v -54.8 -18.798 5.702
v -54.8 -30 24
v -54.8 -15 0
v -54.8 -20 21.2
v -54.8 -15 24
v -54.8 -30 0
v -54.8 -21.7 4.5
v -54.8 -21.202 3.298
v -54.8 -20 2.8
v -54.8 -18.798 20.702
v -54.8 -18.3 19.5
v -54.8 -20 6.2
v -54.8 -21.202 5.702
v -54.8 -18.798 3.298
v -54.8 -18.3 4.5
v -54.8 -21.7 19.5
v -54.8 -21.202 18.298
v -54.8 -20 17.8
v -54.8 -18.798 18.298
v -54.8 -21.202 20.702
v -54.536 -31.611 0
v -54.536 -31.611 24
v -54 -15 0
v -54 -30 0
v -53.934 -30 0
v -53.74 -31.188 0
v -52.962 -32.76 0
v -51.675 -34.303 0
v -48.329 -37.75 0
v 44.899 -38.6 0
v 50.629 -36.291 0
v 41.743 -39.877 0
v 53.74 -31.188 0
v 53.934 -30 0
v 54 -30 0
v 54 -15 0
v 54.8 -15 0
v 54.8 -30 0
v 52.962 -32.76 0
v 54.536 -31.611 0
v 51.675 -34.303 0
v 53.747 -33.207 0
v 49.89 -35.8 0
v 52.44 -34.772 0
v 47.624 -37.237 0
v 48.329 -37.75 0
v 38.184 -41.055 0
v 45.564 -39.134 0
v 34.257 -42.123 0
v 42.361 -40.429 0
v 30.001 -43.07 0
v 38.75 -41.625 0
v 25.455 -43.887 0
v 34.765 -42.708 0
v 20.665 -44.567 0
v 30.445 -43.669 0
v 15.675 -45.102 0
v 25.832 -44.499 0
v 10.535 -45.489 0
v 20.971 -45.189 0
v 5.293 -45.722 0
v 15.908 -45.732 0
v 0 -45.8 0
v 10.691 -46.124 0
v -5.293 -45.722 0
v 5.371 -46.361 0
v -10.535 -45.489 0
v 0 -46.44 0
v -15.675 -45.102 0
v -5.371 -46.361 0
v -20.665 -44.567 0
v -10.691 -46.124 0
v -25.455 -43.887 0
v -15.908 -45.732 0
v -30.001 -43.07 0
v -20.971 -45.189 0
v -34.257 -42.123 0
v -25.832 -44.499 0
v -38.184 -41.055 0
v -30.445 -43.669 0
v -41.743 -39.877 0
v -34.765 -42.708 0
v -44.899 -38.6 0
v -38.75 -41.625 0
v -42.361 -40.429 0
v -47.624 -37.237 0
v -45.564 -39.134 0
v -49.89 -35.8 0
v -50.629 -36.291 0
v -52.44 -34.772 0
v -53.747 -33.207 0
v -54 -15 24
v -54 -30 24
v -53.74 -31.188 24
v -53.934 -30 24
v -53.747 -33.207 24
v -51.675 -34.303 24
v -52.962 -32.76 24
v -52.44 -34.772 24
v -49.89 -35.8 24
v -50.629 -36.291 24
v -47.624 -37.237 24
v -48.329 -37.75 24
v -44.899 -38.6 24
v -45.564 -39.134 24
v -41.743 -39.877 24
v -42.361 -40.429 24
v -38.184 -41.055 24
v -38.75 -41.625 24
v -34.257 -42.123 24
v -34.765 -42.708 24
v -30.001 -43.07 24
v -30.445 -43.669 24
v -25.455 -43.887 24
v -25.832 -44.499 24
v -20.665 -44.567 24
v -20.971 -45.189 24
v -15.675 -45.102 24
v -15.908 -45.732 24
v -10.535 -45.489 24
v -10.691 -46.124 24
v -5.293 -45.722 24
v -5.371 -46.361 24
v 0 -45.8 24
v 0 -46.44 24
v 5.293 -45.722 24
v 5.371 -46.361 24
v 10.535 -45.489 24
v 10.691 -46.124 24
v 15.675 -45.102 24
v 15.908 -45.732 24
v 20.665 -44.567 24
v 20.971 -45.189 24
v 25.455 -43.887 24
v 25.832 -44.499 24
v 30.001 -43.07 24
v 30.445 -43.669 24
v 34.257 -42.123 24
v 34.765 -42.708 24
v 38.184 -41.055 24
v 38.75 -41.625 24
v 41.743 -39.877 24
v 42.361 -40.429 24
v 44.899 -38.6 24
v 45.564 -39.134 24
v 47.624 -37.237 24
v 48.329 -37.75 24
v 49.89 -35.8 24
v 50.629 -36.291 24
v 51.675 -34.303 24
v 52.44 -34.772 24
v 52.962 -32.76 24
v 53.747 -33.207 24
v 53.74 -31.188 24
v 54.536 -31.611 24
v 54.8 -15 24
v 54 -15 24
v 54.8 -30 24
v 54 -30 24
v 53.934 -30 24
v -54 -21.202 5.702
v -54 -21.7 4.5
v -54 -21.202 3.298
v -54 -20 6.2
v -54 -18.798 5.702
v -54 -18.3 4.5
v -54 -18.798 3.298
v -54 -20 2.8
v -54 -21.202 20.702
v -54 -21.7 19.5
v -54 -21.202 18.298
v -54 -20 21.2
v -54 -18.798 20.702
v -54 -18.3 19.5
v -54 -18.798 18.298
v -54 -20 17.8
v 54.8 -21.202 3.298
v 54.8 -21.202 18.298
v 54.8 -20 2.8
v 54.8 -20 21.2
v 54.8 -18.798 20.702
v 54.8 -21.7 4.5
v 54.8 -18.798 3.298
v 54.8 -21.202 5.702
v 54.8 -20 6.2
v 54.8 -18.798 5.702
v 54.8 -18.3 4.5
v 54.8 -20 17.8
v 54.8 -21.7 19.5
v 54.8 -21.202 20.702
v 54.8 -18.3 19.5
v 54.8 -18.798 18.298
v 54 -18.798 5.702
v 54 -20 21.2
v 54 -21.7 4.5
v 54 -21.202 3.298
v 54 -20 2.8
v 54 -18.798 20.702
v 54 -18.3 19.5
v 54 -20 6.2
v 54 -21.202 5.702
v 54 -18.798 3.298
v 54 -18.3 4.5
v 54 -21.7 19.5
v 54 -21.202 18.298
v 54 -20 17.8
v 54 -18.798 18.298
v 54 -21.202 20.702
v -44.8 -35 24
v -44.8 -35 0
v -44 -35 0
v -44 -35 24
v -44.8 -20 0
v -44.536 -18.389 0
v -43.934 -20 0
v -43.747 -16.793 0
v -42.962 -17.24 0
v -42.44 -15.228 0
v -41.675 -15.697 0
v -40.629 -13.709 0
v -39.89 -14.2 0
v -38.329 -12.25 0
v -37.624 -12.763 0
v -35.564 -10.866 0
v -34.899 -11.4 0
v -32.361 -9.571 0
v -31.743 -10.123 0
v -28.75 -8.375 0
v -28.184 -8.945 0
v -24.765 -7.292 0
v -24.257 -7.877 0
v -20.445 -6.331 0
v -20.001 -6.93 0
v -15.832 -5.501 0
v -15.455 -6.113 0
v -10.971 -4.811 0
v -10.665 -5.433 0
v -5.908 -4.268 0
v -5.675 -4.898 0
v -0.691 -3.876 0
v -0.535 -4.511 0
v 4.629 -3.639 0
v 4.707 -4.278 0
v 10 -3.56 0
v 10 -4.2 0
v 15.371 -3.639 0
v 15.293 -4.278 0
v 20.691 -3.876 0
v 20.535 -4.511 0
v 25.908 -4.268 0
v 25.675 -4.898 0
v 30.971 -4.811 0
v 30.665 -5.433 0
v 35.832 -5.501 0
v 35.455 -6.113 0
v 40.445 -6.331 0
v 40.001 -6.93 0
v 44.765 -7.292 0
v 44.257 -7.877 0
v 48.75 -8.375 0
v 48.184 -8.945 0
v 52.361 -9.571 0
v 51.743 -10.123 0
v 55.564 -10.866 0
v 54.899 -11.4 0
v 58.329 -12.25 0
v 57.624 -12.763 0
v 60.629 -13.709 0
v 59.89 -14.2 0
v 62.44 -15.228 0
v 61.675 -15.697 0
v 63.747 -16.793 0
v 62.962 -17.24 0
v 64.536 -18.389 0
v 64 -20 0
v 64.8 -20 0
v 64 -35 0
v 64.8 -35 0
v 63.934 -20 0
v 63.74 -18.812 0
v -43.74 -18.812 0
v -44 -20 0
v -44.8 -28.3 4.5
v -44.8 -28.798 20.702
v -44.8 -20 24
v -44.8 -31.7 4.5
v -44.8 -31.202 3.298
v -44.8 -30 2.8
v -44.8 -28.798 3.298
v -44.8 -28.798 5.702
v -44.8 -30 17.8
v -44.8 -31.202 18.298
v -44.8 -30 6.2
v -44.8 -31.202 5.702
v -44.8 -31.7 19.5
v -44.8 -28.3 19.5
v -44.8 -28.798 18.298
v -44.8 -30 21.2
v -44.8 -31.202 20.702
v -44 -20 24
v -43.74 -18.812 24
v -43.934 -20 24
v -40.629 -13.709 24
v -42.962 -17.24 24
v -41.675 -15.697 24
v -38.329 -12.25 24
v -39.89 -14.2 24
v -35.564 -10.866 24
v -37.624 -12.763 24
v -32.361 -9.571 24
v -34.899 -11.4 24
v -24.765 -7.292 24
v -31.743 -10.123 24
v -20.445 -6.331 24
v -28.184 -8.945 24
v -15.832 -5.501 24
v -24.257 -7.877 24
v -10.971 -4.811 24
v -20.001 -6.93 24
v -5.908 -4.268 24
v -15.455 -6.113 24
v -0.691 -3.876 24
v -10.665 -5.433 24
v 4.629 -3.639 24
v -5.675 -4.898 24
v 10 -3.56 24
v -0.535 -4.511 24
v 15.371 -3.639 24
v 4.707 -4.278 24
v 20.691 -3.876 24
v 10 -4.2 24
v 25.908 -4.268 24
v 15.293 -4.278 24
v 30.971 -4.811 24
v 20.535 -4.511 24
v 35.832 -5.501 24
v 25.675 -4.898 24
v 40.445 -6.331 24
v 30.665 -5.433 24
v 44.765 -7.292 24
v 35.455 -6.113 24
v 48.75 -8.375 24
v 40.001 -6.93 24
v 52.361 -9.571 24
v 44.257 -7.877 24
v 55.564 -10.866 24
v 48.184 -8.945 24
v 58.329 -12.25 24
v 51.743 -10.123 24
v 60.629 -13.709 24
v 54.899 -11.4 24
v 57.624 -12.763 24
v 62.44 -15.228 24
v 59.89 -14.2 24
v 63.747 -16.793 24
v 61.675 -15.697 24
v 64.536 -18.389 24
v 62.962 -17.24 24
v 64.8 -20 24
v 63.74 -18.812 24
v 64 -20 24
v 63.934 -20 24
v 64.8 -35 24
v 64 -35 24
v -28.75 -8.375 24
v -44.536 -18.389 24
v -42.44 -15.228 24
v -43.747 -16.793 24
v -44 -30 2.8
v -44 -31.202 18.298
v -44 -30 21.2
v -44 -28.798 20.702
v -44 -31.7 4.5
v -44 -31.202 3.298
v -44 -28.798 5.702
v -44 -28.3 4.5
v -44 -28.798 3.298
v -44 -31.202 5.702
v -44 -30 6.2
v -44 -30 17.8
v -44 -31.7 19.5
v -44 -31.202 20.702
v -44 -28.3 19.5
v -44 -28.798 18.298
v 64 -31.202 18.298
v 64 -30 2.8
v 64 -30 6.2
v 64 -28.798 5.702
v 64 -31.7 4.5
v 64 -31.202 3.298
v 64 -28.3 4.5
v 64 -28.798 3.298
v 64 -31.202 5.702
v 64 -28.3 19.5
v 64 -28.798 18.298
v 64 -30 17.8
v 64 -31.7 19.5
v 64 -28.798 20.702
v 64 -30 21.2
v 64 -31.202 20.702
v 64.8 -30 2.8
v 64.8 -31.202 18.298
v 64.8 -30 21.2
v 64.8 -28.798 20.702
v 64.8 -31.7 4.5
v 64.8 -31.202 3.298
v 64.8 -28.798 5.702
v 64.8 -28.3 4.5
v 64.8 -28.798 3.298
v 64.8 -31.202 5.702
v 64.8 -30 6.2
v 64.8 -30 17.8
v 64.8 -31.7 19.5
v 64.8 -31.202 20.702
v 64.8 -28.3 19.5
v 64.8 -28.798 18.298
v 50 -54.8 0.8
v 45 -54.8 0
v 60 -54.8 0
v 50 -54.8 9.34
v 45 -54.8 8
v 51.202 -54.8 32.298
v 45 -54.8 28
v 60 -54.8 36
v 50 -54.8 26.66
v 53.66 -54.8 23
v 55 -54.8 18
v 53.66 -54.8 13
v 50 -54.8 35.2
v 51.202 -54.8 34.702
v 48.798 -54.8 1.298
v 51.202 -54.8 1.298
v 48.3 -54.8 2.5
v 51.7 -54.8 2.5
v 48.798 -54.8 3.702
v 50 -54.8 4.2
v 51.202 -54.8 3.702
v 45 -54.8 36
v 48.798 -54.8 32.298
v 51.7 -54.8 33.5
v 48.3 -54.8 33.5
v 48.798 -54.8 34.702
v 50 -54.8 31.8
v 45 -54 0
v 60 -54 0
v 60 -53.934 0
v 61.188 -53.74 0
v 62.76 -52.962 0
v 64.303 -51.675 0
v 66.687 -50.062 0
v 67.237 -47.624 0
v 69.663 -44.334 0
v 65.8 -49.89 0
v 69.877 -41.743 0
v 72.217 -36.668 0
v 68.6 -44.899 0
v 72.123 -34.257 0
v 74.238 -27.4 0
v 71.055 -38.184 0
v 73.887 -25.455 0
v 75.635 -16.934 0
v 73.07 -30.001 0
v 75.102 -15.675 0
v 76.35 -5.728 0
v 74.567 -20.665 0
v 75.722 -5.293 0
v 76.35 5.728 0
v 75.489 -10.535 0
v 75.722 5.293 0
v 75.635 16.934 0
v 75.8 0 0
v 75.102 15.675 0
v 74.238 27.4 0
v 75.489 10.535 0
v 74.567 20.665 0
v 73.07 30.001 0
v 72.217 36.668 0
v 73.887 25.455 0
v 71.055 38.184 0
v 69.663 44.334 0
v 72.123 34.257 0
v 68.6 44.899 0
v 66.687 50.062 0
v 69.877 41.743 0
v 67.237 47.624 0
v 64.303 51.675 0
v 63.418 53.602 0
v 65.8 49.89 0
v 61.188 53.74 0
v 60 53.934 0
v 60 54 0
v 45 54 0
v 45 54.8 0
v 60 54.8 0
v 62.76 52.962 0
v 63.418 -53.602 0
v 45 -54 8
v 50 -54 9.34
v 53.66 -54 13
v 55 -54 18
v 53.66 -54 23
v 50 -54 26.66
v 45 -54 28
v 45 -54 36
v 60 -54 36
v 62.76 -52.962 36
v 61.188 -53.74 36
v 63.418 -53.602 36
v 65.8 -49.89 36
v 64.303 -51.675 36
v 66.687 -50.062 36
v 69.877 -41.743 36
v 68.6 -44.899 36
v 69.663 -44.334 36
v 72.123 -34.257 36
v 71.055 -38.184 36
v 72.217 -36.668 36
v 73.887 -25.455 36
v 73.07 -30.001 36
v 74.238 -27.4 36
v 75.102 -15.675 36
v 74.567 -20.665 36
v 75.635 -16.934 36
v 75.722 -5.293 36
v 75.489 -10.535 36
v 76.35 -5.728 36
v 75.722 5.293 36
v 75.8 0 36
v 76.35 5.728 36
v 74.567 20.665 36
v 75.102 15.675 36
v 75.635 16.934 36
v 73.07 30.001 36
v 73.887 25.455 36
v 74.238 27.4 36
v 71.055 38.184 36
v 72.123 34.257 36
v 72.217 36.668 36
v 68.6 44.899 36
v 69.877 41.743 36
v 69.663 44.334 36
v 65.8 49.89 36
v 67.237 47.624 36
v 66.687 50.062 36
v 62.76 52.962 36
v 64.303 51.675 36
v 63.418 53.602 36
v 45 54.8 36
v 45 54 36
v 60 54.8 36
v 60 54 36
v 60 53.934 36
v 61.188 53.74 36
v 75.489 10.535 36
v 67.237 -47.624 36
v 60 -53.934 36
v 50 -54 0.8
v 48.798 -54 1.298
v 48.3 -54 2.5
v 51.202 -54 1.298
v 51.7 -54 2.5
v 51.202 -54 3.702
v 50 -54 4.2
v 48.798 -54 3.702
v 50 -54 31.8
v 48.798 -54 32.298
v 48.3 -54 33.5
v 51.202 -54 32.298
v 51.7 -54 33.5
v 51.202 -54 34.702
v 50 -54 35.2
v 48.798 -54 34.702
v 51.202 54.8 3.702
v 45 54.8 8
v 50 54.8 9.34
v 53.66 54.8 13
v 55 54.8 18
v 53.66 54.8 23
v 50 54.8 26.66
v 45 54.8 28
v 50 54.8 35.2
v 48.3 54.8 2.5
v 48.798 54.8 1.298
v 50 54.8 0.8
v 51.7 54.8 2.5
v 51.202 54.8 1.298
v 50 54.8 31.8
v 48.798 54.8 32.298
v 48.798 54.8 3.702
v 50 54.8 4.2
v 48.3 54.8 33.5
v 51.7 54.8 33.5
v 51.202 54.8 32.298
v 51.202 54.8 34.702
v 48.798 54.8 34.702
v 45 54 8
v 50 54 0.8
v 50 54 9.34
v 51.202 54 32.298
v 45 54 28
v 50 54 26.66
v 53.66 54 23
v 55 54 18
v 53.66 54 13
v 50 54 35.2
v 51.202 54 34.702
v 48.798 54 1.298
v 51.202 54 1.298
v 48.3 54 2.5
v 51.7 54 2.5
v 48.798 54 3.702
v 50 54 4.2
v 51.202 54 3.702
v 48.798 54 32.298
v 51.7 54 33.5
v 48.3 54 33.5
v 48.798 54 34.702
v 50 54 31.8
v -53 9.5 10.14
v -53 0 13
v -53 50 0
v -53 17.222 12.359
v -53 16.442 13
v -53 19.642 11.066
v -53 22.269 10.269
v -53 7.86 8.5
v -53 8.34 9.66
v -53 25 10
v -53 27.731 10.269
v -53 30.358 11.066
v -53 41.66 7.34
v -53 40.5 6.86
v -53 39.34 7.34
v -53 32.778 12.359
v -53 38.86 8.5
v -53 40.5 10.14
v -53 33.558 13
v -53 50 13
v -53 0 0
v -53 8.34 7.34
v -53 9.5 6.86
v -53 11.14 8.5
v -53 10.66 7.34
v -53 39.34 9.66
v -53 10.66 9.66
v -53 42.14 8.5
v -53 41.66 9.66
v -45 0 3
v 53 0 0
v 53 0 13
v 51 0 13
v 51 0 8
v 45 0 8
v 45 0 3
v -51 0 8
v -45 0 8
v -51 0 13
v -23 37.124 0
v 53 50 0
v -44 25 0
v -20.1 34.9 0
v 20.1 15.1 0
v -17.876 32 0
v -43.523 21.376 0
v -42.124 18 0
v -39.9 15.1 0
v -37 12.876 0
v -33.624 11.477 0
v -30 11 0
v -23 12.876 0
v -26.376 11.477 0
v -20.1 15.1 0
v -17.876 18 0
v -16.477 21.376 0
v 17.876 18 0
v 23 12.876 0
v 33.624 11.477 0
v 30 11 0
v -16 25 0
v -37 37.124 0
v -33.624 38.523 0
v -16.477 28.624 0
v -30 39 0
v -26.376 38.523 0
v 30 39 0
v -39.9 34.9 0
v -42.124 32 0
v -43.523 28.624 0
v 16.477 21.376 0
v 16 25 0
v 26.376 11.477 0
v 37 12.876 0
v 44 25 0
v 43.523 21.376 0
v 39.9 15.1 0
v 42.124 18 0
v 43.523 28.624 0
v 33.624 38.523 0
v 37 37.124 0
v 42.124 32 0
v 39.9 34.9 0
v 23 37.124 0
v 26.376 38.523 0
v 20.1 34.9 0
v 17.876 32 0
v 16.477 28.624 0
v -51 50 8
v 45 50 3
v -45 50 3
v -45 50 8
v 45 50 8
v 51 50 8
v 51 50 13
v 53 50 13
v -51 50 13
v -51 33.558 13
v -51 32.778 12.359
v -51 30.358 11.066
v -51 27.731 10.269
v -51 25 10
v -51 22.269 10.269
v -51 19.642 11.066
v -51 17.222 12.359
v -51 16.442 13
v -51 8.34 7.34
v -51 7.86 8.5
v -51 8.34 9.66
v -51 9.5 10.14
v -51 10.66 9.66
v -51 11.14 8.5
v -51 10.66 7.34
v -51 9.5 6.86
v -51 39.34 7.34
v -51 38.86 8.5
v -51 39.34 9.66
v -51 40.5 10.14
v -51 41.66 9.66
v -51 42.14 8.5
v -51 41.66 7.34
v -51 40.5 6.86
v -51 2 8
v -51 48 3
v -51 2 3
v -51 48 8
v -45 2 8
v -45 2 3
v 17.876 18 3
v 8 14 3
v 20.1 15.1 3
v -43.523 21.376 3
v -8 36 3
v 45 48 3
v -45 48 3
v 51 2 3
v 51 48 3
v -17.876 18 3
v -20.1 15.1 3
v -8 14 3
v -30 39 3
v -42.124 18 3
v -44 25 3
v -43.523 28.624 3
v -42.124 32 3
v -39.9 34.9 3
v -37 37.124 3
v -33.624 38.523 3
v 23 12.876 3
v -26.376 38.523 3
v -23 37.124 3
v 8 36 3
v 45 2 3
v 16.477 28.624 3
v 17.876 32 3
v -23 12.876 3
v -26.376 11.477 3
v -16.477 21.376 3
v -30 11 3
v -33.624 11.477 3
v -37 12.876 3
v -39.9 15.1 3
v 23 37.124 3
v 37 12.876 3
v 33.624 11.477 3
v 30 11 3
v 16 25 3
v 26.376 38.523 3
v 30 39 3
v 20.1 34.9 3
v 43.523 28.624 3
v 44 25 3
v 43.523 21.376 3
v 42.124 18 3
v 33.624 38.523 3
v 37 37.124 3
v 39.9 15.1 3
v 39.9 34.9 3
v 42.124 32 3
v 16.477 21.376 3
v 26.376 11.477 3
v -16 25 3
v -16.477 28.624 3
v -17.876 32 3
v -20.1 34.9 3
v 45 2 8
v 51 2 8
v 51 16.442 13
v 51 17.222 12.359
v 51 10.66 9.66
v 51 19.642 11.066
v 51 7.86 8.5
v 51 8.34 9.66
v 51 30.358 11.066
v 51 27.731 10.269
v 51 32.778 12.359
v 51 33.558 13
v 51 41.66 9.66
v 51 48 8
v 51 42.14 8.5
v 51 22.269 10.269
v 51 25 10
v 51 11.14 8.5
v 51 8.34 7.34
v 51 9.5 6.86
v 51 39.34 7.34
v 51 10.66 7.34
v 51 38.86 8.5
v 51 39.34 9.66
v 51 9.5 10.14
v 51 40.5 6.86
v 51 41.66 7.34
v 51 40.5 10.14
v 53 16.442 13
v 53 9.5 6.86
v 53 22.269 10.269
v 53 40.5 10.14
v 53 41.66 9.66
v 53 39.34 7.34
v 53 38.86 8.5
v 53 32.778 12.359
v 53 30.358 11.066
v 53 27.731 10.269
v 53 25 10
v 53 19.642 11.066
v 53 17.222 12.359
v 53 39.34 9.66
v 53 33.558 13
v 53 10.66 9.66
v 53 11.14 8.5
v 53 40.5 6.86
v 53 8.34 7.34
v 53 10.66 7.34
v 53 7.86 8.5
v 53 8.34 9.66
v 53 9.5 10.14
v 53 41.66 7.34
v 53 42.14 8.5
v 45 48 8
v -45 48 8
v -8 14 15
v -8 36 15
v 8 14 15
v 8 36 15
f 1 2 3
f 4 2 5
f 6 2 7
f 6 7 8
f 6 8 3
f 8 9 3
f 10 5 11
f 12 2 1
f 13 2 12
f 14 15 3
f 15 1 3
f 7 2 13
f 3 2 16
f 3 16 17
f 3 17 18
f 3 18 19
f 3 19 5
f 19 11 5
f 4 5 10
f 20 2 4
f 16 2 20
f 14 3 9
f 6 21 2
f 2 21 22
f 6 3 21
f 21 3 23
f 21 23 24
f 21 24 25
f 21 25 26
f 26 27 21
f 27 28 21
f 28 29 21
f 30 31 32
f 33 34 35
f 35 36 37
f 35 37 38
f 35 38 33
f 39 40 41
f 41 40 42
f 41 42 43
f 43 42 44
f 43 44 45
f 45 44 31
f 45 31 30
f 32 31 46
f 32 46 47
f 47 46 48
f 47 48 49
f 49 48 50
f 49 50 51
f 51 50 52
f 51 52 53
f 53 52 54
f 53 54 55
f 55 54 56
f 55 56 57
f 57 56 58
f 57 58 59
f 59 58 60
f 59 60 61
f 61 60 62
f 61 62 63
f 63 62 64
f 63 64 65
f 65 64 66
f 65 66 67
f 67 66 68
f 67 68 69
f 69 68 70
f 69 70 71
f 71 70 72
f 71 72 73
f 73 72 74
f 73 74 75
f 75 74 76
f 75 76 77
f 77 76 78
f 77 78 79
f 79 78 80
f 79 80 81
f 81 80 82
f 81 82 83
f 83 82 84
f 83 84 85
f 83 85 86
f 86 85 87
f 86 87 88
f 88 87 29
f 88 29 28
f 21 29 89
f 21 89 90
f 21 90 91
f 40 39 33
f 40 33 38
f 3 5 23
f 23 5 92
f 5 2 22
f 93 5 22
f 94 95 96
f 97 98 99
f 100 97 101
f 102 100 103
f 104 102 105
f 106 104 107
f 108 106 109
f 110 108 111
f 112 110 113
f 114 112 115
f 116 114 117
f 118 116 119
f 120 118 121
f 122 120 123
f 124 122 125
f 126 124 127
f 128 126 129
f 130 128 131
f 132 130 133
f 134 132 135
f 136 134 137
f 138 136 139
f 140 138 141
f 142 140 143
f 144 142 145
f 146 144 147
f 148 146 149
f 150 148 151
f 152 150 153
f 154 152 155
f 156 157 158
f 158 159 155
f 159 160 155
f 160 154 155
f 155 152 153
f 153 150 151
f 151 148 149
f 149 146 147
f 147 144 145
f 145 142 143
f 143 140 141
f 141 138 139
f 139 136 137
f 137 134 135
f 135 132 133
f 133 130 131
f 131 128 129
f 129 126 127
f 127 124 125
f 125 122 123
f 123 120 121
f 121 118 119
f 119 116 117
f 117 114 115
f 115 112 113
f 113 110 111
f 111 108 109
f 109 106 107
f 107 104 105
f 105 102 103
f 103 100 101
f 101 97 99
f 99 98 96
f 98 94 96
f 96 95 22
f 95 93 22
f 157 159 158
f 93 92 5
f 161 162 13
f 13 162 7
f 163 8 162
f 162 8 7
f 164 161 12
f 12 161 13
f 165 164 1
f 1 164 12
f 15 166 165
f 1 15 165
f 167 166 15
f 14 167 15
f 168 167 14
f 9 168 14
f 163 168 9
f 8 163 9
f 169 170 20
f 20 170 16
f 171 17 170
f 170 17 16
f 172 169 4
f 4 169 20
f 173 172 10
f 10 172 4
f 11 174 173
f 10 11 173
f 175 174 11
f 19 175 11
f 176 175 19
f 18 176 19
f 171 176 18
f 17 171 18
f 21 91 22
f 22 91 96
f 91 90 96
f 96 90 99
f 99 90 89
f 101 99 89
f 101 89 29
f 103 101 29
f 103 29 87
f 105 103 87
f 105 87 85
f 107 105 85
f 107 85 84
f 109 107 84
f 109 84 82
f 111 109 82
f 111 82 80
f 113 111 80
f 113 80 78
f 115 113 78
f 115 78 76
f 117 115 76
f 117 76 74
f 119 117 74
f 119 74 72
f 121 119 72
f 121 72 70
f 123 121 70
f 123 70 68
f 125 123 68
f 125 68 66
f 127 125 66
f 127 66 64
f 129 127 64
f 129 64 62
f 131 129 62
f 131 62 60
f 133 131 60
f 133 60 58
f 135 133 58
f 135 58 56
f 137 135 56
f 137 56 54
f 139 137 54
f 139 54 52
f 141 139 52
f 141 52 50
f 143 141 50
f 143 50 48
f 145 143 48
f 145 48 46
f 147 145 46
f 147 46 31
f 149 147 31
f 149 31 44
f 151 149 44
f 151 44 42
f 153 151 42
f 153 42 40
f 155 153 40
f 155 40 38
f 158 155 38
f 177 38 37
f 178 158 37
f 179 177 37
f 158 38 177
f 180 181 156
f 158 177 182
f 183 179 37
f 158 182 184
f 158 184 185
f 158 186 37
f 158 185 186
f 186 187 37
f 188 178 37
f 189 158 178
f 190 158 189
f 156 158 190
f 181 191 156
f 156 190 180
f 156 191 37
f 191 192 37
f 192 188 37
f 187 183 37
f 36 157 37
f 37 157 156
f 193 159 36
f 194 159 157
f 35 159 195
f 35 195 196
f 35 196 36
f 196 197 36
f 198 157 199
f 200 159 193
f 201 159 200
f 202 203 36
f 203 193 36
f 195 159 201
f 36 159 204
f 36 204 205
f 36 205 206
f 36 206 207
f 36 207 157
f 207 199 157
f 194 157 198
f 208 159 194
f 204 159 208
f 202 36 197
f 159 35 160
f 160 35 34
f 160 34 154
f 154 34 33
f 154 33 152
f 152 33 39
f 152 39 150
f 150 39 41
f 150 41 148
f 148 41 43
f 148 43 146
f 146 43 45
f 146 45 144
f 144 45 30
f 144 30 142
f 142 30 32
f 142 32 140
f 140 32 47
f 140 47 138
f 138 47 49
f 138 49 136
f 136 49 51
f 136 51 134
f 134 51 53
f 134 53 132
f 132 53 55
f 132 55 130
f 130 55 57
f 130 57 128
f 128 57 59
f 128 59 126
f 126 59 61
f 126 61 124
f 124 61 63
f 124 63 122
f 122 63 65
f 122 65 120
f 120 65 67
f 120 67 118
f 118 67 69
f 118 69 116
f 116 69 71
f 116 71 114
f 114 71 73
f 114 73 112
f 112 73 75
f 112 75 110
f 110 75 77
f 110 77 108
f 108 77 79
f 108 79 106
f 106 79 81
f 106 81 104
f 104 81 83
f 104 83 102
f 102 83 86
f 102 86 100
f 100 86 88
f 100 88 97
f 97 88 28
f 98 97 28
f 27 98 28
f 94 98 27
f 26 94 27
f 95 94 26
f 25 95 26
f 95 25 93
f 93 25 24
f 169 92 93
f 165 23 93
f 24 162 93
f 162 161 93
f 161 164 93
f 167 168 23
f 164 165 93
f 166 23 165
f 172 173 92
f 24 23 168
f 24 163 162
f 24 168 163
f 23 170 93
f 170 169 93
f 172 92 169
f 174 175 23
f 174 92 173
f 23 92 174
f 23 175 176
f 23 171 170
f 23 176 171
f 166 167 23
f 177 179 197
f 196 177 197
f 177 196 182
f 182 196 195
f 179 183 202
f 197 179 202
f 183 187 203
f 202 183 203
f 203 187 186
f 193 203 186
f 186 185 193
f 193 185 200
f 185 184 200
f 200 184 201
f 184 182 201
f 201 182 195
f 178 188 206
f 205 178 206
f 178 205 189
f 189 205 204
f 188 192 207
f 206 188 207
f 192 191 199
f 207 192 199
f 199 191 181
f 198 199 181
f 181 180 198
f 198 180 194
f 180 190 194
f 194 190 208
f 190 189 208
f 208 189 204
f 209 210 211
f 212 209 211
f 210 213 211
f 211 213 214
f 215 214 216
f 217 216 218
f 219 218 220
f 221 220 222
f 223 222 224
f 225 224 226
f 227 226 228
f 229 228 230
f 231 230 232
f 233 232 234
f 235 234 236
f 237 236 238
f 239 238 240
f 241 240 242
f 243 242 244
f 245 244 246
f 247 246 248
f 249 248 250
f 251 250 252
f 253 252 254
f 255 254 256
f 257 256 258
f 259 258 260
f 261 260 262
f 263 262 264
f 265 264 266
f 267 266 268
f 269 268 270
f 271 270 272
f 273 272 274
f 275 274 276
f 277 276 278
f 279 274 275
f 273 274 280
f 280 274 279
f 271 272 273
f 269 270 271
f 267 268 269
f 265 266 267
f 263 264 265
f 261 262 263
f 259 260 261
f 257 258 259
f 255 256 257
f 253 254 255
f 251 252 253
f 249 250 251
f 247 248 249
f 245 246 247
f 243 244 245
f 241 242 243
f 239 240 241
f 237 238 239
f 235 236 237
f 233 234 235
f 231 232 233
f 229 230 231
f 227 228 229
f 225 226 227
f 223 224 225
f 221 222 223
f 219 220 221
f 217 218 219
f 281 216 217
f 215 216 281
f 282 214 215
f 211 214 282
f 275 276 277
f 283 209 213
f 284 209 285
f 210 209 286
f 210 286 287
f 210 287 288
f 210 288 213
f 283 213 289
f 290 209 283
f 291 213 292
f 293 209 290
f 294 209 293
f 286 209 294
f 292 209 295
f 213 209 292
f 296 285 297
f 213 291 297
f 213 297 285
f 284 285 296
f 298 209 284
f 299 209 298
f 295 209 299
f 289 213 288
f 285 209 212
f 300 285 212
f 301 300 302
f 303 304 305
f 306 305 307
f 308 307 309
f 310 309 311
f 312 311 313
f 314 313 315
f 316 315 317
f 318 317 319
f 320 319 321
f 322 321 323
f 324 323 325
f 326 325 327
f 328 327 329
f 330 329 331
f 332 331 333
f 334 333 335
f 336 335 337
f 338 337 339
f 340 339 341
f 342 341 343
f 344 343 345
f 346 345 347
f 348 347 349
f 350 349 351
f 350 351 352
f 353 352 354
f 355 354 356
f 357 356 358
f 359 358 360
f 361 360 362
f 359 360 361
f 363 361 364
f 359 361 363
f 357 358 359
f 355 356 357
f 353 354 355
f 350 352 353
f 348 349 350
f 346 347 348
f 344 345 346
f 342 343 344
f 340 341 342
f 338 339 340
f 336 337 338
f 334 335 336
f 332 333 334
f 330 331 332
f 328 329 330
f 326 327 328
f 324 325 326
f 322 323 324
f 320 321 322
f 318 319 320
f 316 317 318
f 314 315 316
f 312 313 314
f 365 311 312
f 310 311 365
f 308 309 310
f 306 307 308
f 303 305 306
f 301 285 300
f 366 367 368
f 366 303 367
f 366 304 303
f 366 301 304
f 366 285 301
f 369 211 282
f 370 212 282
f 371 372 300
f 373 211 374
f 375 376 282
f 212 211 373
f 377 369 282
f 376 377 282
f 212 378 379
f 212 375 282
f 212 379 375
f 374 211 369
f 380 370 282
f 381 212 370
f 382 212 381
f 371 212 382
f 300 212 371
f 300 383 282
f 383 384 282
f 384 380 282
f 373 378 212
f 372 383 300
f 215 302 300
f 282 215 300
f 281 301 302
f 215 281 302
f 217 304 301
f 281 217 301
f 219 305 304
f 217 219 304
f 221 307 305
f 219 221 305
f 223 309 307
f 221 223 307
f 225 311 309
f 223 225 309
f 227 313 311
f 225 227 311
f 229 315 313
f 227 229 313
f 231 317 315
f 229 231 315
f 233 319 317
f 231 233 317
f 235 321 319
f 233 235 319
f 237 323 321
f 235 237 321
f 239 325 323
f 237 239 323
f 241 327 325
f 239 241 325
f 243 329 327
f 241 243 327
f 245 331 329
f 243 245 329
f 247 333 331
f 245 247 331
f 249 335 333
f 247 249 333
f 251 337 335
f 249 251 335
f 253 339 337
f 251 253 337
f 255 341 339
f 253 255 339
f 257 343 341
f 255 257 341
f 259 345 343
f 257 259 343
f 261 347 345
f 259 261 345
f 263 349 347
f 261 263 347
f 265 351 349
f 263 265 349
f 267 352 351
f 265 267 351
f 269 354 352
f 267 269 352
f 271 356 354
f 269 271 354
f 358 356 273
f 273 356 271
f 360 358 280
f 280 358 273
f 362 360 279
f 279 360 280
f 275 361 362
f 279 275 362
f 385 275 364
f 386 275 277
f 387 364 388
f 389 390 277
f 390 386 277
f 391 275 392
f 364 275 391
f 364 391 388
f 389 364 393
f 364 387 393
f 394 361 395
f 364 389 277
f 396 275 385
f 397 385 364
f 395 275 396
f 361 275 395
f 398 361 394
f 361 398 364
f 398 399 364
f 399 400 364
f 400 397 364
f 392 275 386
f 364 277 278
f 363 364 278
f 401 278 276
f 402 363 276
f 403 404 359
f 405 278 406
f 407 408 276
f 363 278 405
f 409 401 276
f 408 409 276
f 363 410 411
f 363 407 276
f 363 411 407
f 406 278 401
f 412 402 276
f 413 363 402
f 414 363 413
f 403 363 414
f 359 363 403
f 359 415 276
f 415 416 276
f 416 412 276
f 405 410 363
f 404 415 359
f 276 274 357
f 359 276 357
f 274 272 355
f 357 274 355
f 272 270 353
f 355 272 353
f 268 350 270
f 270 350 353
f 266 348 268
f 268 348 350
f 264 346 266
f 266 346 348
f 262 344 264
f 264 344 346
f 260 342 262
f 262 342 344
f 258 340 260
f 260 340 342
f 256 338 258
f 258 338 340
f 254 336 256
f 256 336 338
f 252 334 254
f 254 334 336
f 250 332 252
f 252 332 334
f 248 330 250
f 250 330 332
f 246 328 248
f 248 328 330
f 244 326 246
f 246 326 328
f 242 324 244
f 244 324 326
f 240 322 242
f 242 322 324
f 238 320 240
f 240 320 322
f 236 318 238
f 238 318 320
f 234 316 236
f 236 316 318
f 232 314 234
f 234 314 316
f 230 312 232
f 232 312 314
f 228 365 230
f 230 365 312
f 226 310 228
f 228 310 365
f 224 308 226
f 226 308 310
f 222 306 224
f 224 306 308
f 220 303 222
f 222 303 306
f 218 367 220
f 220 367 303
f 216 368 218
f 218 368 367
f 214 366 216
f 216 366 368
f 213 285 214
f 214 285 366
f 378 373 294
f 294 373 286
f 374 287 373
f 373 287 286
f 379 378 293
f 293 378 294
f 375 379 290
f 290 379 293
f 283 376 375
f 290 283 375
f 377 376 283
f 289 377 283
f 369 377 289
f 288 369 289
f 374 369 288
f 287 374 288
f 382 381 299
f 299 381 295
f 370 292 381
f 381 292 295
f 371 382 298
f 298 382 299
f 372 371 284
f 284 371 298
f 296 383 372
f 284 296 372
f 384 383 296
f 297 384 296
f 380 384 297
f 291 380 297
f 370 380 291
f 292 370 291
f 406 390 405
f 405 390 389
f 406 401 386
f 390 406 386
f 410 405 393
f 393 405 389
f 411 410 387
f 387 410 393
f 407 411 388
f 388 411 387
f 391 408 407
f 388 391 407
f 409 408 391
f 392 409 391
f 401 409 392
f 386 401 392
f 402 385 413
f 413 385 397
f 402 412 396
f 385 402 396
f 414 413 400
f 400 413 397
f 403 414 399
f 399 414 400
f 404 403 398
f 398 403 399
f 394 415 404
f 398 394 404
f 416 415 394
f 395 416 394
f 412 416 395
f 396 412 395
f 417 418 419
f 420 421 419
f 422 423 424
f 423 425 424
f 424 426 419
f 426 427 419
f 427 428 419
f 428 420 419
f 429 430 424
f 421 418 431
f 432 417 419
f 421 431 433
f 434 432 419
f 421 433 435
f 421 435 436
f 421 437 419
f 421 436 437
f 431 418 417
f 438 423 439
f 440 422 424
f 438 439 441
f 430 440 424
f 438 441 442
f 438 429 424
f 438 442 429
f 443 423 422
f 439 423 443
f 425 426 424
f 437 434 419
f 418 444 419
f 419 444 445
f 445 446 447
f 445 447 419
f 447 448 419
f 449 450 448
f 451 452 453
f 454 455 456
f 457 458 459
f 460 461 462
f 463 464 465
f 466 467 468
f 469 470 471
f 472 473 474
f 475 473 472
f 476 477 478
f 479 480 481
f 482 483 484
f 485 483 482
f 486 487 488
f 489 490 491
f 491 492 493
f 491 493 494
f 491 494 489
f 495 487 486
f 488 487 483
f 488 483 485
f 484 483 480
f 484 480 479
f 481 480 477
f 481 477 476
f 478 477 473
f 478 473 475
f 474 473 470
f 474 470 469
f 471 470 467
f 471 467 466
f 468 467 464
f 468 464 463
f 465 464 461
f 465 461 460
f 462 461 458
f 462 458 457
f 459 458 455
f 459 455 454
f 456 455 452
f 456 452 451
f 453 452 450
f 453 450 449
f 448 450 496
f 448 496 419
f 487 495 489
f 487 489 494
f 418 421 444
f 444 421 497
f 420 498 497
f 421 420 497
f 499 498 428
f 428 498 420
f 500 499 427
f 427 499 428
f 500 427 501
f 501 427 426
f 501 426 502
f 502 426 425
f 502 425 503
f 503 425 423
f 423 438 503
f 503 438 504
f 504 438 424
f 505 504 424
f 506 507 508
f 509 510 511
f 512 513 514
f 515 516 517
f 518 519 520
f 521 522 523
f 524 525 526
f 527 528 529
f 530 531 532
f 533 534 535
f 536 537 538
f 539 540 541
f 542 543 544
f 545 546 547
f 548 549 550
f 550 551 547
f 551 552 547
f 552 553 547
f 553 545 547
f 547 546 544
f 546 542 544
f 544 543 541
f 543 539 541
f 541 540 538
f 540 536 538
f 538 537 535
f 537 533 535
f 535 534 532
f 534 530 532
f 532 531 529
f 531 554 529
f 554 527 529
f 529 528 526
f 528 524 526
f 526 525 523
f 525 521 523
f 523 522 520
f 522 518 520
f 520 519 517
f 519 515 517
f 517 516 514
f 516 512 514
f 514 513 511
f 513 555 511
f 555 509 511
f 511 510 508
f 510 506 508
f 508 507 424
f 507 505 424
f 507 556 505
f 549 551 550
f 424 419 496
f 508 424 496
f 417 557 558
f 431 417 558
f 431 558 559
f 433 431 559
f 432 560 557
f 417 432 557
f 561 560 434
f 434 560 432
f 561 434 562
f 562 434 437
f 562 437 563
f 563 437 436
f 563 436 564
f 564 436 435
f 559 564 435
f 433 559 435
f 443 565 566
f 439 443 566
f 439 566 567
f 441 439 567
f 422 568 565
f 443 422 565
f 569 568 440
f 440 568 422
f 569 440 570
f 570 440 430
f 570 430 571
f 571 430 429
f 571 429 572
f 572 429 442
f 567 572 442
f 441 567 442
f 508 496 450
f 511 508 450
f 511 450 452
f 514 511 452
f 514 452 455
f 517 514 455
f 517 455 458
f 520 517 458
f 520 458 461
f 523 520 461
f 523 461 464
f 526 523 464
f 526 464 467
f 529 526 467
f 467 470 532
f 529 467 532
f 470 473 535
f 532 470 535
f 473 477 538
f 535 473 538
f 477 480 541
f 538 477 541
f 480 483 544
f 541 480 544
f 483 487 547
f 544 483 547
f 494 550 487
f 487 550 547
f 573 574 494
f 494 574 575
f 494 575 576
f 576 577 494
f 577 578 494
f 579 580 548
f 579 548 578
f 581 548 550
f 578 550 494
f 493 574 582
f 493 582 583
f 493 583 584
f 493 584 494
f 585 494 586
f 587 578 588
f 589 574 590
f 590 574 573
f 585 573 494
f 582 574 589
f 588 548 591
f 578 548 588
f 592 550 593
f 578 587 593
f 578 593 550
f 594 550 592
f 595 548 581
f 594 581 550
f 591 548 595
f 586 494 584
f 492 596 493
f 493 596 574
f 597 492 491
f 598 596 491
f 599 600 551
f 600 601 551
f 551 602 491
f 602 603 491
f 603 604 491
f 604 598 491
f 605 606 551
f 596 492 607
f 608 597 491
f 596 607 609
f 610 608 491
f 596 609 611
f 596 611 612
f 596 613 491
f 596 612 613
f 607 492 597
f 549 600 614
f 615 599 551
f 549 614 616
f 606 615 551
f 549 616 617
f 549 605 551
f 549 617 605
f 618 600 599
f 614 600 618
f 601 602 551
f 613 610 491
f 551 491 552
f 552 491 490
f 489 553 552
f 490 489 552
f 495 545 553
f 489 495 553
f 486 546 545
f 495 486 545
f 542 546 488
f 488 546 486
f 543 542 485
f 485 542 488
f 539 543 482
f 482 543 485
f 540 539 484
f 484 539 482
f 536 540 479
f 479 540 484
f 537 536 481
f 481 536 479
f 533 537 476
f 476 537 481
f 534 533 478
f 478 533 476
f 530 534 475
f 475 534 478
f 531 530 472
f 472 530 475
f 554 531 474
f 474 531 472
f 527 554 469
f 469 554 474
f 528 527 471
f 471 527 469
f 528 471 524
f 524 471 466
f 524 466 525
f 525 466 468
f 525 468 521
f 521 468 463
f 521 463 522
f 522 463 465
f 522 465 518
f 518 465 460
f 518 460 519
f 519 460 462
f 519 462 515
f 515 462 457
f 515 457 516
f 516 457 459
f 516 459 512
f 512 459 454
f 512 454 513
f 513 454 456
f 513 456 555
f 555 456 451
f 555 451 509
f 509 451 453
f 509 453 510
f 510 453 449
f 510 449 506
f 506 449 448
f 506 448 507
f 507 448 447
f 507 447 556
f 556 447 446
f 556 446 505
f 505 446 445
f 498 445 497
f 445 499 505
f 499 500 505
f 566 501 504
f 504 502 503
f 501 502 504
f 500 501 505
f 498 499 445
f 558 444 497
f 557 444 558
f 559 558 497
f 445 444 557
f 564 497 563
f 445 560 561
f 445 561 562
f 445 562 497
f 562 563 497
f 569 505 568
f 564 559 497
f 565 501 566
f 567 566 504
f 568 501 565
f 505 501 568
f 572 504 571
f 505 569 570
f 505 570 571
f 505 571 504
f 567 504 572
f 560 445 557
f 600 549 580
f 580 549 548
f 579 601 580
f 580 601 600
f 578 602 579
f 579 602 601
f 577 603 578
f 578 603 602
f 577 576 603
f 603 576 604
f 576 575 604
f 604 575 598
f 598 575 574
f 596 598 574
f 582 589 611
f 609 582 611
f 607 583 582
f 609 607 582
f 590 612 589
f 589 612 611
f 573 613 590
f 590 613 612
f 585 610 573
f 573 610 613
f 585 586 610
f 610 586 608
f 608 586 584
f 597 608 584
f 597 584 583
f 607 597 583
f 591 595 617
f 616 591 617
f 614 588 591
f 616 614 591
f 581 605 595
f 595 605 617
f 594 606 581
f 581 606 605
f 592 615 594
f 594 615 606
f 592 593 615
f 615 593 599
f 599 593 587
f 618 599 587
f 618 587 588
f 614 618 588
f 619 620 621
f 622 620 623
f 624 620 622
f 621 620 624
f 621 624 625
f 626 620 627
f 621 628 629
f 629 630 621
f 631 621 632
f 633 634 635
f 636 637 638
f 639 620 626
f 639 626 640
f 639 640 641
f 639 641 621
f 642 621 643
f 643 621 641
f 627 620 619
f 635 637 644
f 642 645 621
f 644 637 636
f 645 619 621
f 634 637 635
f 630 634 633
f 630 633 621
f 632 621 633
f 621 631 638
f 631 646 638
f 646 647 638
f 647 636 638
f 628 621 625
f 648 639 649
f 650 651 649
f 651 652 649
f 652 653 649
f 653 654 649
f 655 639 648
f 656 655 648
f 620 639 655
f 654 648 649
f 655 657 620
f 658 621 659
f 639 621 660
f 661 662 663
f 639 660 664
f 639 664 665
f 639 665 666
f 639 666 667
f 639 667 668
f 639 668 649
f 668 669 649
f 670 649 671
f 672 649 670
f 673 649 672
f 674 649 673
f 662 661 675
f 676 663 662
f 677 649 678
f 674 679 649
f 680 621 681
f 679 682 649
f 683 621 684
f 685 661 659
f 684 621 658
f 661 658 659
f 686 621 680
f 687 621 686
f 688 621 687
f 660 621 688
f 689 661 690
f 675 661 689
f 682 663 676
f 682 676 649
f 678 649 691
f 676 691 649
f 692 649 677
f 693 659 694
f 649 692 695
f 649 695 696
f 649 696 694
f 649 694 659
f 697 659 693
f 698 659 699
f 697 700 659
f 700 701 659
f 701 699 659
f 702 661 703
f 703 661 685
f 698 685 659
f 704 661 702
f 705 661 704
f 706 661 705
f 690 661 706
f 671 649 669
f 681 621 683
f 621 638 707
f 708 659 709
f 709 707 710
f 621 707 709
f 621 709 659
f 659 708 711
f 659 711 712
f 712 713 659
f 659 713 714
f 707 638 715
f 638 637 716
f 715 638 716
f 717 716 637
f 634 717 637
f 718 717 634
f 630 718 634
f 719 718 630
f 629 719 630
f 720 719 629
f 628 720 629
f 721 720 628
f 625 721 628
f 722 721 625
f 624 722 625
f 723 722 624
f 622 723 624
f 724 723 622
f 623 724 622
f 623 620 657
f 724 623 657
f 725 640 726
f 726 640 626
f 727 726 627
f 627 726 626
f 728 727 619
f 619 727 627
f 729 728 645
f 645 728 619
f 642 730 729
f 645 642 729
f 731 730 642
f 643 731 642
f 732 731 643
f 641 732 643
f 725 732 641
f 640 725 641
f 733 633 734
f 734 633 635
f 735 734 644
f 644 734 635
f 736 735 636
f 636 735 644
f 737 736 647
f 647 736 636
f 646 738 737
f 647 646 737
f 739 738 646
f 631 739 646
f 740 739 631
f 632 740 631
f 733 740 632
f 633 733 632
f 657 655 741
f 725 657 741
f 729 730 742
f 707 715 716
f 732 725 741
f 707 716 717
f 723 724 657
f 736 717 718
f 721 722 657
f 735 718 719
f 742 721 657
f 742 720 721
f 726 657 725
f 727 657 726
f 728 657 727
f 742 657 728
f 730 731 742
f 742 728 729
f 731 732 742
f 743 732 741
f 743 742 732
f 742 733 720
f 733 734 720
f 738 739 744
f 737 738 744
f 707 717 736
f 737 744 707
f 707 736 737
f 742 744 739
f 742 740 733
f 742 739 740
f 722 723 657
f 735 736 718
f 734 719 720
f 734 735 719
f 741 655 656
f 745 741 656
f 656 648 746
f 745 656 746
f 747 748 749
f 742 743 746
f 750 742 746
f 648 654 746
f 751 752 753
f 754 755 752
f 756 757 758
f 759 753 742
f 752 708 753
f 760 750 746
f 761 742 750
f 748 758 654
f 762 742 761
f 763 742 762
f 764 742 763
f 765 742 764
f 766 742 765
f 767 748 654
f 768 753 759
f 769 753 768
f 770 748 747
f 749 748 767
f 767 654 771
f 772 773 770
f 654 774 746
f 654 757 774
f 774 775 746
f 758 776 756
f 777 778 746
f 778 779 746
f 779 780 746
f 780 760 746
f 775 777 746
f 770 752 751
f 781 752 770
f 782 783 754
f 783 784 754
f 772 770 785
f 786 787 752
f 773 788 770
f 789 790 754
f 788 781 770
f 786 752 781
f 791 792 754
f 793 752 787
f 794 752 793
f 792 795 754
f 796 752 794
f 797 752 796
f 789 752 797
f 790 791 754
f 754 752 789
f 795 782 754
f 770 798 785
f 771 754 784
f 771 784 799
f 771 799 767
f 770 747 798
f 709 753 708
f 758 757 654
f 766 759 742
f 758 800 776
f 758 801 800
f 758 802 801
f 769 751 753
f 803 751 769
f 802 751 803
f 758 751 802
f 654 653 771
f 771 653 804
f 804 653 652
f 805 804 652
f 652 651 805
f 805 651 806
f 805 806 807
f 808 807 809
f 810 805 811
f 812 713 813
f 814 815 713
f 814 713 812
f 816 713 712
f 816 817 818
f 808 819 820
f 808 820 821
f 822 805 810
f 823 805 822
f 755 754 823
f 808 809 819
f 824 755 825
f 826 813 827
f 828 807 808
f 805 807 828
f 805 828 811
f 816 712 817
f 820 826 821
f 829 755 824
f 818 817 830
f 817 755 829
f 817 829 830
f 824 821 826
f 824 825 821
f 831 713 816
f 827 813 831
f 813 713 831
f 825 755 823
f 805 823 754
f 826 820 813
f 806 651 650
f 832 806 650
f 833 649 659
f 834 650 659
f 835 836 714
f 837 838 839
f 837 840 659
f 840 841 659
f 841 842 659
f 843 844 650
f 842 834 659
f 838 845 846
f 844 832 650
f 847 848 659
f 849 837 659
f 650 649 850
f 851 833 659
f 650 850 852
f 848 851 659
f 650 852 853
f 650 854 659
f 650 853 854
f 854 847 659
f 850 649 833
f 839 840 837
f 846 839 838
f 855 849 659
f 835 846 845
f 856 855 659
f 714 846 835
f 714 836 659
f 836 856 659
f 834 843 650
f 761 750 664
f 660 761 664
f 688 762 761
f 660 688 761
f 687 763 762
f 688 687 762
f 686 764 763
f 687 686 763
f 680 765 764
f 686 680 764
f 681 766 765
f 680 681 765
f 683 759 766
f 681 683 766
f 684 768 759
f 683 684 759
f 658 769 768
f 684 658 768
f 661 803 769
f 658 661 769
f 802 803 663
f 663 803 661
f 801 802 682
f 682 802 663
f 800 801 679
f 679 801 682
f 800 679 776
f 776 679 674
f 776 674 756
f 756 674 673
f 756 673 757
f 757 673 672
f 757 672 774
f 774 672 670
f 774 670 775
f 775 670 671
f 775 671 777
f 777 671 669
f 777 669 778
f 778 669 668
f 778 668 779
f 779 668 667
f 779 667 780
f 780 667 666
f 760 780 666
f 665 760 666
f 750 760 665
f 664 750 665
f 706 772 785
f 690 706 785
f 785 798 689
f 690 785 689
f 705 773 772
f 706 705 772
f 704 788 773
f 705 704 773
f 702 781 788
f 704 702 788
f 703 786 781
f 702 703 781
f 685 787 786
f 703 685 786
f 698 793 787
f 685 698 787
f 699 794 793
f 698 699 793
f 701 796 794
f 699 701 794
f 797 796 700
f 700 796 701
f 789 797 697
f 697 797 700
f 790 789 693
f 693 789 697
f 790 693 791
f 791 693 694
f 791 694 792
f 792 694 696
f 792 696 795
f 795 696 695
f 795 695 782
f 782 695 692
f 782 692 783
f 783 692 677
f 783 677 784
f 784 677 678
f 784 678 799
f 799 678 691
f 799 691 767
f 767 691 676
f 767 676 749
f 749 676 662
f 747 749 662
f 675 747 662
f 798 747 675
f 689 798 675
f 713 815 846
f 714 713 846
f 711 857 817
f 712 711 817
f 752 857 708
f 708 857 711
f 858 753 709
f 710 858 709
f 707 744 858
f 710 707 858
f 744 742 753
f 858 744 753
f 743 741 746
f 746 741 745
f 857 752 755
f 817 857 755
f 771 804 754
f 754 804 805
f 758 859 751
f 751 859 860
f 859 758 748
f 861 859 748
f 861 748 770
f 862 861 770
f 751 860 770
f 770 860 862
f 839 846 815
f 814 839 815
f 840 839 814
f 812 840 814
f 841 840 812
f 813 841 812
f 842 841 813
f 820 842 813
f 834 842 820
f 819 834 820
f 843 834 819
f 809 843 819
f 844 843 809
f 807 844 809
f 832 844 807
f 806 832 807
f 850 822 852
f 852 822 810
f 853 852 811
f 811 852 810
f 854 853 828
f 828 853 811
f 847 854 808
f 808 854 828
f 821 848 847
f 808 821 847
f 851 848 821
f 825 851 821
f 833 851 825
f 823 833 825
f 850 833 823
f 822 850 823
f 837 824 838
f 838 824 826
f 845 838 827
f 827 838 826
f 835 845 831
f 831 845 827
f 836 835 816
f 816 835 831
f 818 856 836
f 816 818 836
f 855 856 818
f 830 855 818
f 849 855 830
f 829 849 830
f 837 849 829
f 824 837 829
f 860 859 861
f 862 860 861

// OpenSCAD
// file: dimensions.scad
// Originally created by Jose Julio
// https://github.com/JJulio/b-robot

SHARED_HEIGHT = 140;
SHARED_LENGTH = 102;
SHARED_WIDTH  = 50;
// file: base_plate.scad
// Originally created by Jose Julio
// https://github.com/JJulio/b-robot

include <dimensions.scad>;

module base_plate()
{
  translate([-(SHARED_LENGTH+4)/2,0,0]) cube([SHARED_LENGTH+4,SHARED_WIDTH,3]);
  translate([-(SHARED_LENGTH+4)/2,0,0]) cube([2,SHARED_WIDTH,3+10]);
  translate([(SHARED_LENGTH+4)/2-2,0,0]) cube([2,SHARED_WIDTH,3+10]);

  translate([(SHARED_LENGTH+4)/2-8,0,0]) cube([8,2,8]);
  translate([(SHARED_LENGTH+4)/2-8,SHARED_WIDTH-2,0]) cube([8,2,8]);
  translate([-(SHARED_LENGTH+4)/2,0,0]) cube([8,2,8]);
  translate([-(SHARED_LENGTH+4)/2,SHARED_WIDTH-2,0]) cube([8,2,8]);

  translate([-8,(SHARED_WIDTH/2)-11,0]) cube([16,22,15]);

}

module base_plate_holes()
{
  // Motor shaft hole
  translate([SHARED_LENGTH/2,SHARED_WIDTH/2,24]) rotate([0,90,0]) cylinder(r=14,h=10,$fn=32,center=true);
  translate([-SHARED_LENGTH/2,SHARED_WIDTH/2,24]) rotate([0,90,0]) cylinder(r=14,h=10,$fn=32,center=true);

  // Motor mount holes
  translate([-(SHARED_LENGTH+4)/2,9.5,5.5+3]) rotate([0,90,0]) cylinder(r=1.64,h=10,$fn=8,center=true);
  translate([-(SHARED_LENGTH+4)/2,9.5+31,5.5+3]) rotate([0,90,0]) cylinder(r=1.64,h=10,$fn=8,center=true);
  translate([(SHARED_LENGTH+4)/2,9.5,5.5+3]) rotate([0,90,0]) cylinder(r=1.64,h=10,$fn=8,center=true);
  translate([(SHARED_LENGTH+4)/2,9.5+31,5.5+3]) rotate([0,90,0]) cylinder(r=1.64,h=10,$fn=8,center=true);

  //translate([0,SHARED_WIDTH/2,0]) cylinder(r=12,h=10,$fn=24,center=true);
  translate([-30,SHARED_WIDTH/2,0]) cylinder(r=14,h=10,$fn=24,center=true);
  translate([30,SHARED_WIDTH/2,0]) cylinder(r=14,h=10,$fn=24,center=true);
}


difference()
{
base_plate();
base_plate_holes();
}
// file: shroud.scad
// Originally created by Jose Julio
// https://github.com/JJulio/b-robot

// Robot Body shell

LENGTH = 108;
WIDTH = 36;
WIDTH2 = 24;

module shroud()
{
  //translate([-LENGTH/2,0,0]) cube([LENGTH,WIDTH,1]);

  translate([0,0,WIDTH/2]) scale([1,0.30]) cylinder(r=LENGTH/2+0.8,h=WIDTH,$fn=30,center=true);
  translate([LENGTH/2,0,0]) cube([0.8,15,WIDTH]);
  translate([-LENGTH/2-0.8,0,0]) cube([0.8,15,WIDTH]);


}

module shroud_holes()
{
  translate([-LENGTH/2,0,-1]) cube([LENGTH,WIDTH,WIDTH+2]);
  translate([0,0.4,WIDTH/2]) scale([1,0.3]) cylinder(r=LENGTH/2,h=WIDTH+10,$fn=64,center=true);
  translate([-LENGTH/2,10,(WIDTH-31)/2]) rotate([0,90,0]) cylinder(r=1.7,h=10,center=true,$fn=8);
  translate([-LENGTH/2,10,(WIDTH-31)/2+31]) rotate([0,90,0]) cylinder(r=1.7,h=10,center=true,$fn=8);
  translate([LENGTH/2,10,(WIDTH-31)/2]) rotate([0,90,0]) cylinder(r=1.7,h=10,center=true,$fn=8);
  translate([LENGTH/2,10,(WIDTH-31)/2+31]) rotate([0,90,0]) cylinder(r=1.7,h=10,center=true,$fn=8);

  translate([-LENGTH/2,15,WIDTH/2]) rotate([0,90,0]) scale([1,1]) cylinder(r=10,h=10,center=true,$fn=12);
  translate([LENGTH/2,15,WIDTH/2])  rotate([0,90,0]) scale([1,1]) cylinder(r=10,h=10,center=true,$fn=12);
}

module shroud2()
{
  //translate([-LENGTH/2,0,0]) cube([LENGTH,WIDTH2,1]);

  translate([0,0,WIDTH2/2]) scale([1,0.30]) cylinder(r=LENGTH/2+0.8,h=WIDTH2,$fn=64,center=true);
  translate([LENGTH/2,0,0]) cube([0.8,15,WIDTH2]);
  translate([-LENGTH/2-0.8,0,0]) cube([0.8,15,WIDTH2]);


}

module shroud_holes2()
{
  translate([-LENGTH/2,0,-1]) cube([LENGTH,WIDTH2,WIDTH2+2]);
  translate([0,0.4,WIDTH2/2]) scale([1,0.3]) cylinder(r=LENGTH/2,h=WIDTH2+10,$fn=64,center=true);
  translate([-LENGTH/2,10,(WIDTH2-15)/2]) rotate([0,90,0]) cylinder(r=1.7,h=10,center=true,$fn=8);
  translate([-LENGTH/2,10,(WIDTH2-15)/2+15]) rotate([0,90,0]) cylinder(r=1.7,h=10,center=true,$fn=8);
  translate([LENGTH/2,10,(WIDTH2-15)/2]) rotate([0,90,0]) cylinder(r=1.7,h=10,center=true,$fn=8);
  translate([LENGTH/2,10,(WIDTH2-15)/2+15]) rotate([0,90,0]) cylinder(r=1.7,h=10,center=true,$fn=8);

}

difference()
{
  shroud();
  shroud_holes();
}

translate([0,-30,0]) difference()
{
  shroud2();
  shroud_holes2();
}
// main file
use <shroud.scad>;
use <base_plate.scad>;

translate([0,-30,0]) difference()
{
  shroud2();
  shroud_holes2();
}

rotate([0,0,180]) translate([-10,20,0]) difference()
{
  shroud2();
  shroud_holes2();
}

rotate([0,0,90]) translate([0,-60,0]) difference()
{
  shroud();
  shroud_holes();
}

translate([0,0,0]) difference()
{
base_plate();
base_plate_holes();
}
